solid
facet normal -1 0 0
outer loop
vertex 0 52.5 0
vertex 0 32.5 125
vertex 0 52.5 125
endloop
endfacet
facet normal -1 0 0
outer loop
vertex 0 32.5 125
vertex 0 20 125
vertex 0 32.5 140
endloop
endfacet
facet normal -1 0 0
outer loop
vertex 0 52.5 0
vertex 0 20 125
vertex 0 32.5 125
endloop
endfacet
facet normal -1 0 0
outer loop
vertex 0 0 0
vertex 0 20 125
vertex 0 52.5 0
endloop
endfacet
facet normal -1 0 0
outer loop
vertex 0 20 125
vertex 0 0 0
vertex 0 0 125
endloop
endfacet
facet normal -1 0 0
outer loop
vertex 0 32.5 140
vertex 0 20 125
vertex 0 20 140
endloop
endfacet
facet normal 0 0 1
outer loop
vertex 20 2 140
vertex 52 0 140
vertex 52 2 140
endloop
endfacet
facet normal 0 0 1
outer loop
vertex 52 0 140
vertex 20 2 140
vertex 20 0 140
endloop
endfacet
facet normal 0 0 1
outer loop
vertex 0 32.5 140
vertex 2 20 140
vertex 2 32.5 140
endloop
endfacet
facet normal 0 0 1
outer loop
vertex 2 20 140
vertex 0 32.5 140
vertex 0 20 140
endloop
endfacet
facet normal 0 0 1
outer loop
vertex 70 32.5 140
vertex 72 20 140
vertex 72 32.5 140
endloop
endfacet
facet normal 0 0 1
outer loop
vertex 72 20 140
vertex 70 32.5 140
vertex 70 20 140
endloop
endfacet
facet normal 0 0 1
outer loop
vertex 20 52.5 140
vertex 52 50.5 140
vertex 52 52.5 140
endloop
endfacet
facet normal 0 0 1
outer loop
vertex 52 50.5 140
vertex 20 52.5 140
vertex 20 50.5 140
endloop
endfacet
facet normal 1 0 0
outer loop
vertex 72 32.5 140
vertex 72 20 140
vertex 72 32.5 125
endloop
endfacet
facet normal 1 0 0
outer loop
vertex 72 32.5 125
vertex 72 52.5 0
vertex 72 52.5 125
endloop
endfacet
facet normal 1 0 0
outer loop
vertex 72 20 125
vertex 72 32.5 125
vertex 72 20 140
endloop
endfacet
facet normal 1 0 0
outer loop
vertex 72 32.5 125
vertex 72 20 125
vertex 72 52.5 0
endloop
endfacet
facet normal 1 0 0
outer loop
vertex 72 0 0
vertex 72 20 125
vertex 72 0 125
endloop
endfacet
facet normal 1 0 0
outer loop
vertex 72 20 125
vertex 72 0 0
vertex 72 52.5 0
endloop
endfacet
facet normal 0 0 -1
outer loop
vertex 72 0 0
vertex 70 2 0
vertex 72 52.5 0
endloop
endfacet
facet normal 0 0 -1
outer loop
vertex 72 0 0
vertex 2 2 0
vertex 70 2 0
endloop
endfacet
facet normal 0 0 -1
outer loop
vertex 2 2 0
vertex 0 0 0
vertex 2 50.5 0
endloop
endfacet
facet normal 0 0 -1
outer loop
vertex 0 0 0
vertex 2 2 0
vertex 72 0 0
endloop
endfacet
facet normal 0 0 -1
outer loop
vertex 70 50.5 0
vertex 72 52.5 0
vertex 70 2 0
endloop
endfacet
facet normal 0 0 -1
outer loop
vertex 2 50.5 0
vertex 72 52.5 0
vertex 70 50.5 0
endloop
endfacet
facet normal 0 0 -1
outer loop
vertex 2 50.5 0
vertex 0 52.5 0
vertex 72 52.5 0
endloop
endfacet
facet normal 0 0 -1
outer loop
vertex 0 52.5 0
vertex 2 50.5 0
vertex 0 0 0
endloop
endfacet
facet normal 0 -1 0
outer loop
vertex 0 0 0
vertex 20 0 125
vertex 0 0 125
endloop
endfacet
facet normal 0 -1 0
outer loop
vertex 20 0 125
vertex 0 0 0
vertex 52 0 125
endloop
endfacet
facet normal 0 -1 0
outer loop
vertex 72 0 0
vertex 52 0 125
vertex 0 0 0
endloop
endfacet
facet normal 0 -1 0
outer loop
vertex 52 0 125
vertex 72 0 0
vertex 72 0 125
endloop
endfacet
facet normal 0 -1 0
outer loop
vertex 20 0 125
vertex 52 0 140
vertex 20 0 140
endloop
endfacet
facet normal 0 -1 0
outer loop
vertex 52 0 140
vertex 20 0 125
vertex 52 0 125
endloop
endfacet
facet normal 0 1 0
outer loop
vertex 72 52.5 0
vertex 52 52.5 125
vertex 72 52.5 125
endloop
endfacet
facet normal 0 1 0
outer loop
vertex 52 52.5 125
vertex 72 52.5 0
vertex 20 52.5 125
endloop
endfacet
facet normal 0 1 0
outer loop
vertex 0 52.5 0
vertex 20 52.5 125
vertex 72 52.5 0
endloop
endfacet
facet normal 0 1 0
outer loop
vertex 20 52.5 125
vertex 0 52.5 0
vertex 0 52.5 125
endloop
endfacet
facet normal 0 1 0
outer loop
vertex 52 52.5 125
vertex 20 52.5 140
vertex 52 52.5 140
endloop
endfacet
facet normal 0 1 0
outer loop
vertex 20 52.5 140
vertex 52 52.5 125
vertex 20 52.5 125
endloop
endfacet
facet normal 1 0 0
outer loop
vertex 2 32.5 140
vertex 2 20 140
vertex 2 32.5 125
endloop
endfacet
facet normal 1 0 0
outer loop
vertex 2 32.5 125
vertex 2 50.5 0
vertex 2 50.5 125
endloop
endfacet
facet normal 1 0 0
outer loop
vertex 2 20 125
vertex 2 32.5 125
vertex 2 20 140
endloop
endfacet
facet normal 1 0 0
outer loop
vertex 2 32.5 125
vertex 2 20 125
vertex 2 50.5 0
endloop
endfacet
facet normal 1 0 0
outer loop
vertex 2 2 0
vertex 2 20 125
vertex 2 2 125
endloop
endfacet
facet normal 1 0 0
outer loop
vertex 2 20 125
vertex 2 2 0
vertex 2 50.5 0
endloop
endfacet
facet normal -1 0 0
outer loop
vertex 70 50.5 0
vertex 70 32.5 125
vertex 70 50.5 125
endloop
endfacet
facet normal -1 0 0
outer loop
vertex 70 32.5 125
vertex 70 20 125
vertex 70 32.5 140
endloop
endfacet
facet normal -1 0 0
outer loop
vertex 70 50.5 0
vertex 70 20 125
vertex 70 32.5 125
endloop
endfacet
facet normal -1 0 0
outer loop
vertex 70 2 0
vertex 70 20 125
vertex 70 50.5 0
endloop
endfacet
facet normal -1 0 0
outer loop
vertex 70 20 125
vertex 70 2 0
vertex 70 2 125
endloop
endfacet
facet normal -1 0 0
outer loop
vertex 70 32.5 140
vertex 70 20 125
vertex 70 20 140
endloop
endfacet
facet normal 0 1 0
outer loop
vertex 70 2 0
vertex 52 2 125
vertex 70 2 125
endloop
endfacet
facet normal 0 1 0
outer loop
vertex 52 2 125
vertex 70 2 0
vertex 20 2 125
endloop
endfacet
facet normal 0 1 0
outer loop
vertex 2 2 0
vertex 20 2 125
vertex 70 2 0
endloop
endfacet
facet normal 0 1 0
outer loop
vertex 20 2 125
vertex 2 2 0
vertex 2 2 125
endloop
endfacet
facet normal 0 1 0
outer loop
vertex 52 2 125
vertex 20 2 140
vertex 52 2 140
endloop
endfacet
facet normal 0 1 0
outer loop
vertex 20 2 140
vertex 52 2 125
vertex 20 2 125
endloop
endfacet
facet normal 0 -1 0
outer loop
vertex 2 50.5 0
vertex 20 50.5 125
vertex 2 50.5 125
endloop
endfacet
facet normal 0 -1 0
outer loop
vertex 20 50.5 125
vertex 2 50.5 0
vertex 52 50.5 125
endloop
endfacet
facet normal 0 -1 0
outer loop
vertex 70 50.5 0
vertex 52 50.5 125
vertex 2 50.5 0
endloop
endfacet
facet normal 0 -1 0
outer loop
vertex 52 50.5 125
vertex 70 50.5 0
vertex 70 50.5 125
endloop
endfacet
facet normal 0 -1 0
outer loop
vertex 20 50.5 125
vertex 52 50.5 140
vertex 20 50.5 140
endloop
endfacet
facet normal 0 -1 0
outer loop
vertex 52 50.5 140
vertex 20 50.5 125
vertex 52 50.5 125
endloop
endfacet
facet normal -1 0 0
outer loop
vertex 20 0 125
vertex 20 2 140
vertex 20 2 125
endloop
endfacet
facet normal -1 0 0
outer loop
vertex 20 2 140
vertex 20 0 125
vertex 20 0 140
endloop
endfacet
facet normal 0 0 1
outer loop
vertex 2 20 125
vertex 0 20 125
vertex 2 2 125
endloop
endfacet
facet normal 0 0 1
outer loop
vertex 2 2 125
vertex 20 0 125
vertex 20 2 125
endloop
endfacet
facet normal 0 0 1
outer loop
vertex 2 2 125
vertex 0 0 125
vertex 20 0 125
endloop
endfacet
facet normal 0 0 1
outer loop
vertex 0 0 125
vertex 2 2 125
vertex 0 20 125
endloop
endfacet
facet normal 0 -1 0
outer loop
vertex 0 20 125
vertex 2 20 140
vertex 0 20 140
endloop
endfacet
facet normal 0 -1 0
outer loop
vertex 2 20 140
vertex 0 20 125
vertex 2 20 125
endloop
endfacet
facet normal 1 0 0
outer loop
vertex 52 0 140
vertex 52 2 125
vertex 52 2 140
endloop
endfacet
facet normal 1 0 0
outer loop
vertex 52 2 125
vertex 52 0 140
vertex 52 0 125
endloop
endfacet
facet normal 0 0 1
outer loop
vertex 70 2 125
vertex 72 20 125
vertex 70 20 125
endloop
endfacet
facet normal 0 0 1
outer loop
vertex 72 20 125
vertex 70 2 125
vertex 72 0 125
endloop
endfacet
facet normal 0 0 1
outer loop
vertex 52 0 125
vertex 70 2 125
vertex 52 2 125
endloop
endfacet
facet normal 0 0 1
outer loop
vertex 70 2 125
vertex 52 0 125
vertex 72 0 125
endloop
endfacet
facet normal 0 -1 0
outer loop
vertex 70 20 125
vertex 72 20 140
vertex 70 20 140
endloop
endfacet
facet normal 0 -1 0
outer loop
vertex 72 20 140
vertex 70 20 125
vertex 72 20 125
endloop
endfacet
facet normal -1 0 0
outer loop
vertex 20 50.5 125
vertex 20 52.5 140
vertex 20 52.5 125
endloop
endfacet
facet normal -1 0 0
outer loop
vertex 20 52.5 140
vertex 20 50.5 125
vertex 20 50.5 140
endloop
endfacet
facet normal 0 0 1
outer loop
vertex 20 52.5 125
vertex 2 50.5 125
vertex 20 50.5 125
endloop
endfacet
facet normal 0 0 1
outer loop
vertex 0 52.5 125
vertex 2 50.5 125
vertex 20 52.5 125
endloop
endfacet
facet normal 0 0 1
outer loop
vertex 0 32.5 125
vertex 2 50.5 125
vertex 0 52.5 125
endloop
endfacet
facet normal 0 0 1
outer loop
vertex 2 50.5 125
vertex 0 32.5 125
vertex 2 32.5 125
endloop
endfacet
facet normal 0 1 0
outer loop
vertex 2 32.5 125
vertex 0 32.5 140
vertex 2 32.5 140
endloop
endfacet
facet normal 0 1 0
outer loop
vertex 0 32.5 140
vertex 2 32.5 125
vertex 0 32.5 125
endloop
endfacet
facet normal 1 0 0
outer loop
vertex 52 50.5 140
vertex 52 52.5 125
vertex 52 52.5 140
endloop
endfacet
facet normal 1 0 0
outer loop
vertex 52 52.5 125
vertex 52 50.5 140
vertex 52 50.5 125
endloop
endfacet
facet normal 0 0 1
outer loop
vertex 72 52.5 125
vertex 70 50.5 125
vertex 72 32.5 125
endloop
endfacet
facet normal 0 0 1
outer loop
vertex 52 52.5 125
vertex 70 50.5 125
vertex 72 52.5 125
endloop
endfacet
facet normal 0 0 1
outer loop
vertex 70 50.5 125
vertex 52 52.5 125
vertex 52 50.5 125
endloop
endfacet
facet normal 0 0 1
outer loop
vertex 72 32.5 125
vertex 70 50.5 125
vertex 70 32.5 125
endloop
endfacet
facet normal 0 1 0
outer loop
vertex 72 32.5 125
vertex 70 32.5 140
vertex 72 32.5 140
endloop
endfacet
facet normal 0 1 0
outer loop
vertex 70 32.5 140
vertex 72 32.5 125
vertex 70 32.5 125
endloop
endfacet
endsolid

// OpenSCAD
// 盲人取药机 - 母盒子 (上下通透，四面围栏，四角带缺口)

box_w = 72;           // 盒子宽度 (X轴)
box_d = 52.5;         // 盒子深度 (Y轴)
box_h = 140;          // 盒子高度 (Z轴)
wall_thickness = 2;   // 壁厚

corner_size = 20;     // 缺口沿墙体方向的长度
indent_h = 15;        // 缺口深度

module mother_box() {
    difference() {
        // 主体：四面围栏（上下通透）
        difference() {
            cube([box_w, box_d, box_h], center=false);

            translate([wall_thickness, wall_thickness, -1])
                cube([
                    box_w - 2*wall_thickness,
                    box_d - 2*wall_thickness,
                    box_h + 2
                ], center=false);
        }

        // 四角L形缺口，只切墙体，保持中间完全通透
        // 左前角 (X=0, Y=0)
        translate([0, 0, box_h - indent_h])
            cube([corner_size, wall_thickness, indent_h + 1], center=false);
        translate([0, 0, box_h - indent_h])
            cube([wall_thickness, corner_size, indent_h + 1], center=false);
        // 右前角 (X=max, Y=0)
        translate([box_w - corner_size, 0, box_h - indent_h])
            cube([corner_size, wall_thickness, indent_h + 1], center=false);
        translate([box_w - wall_thickness, 0, box_h - indent_h])
            cube([wall_thickness, corner_size, indent_h + 1], center=false);
        // 左后角 (X=0, Y=max)
        translate([0, box_d - wall_thickness, box_h - indent_h])
            cube([corner_size, wall_thickness, indent_h + 1], center=false);
        translate([0, box_d - corner_size, box_h - indent_h])
            cube([wall_thickness, corner_size, indent_h + 1], center=false);
        // 右后角 (X=max, Y=max)
        translate([box_w - corner_size, box_d - wall_thickness, box_h - indent_h])
            cube([corner_size, wall_thickness, indent_h + 1], center=false);
        translate([box_w - wall_thickness, box_d - corner_size, box_h - indent_h])
            cube([wall_thickness, corner_size, indent_h + 1], center=false);
    }
}

// 渲染母盒子
mother_box();
